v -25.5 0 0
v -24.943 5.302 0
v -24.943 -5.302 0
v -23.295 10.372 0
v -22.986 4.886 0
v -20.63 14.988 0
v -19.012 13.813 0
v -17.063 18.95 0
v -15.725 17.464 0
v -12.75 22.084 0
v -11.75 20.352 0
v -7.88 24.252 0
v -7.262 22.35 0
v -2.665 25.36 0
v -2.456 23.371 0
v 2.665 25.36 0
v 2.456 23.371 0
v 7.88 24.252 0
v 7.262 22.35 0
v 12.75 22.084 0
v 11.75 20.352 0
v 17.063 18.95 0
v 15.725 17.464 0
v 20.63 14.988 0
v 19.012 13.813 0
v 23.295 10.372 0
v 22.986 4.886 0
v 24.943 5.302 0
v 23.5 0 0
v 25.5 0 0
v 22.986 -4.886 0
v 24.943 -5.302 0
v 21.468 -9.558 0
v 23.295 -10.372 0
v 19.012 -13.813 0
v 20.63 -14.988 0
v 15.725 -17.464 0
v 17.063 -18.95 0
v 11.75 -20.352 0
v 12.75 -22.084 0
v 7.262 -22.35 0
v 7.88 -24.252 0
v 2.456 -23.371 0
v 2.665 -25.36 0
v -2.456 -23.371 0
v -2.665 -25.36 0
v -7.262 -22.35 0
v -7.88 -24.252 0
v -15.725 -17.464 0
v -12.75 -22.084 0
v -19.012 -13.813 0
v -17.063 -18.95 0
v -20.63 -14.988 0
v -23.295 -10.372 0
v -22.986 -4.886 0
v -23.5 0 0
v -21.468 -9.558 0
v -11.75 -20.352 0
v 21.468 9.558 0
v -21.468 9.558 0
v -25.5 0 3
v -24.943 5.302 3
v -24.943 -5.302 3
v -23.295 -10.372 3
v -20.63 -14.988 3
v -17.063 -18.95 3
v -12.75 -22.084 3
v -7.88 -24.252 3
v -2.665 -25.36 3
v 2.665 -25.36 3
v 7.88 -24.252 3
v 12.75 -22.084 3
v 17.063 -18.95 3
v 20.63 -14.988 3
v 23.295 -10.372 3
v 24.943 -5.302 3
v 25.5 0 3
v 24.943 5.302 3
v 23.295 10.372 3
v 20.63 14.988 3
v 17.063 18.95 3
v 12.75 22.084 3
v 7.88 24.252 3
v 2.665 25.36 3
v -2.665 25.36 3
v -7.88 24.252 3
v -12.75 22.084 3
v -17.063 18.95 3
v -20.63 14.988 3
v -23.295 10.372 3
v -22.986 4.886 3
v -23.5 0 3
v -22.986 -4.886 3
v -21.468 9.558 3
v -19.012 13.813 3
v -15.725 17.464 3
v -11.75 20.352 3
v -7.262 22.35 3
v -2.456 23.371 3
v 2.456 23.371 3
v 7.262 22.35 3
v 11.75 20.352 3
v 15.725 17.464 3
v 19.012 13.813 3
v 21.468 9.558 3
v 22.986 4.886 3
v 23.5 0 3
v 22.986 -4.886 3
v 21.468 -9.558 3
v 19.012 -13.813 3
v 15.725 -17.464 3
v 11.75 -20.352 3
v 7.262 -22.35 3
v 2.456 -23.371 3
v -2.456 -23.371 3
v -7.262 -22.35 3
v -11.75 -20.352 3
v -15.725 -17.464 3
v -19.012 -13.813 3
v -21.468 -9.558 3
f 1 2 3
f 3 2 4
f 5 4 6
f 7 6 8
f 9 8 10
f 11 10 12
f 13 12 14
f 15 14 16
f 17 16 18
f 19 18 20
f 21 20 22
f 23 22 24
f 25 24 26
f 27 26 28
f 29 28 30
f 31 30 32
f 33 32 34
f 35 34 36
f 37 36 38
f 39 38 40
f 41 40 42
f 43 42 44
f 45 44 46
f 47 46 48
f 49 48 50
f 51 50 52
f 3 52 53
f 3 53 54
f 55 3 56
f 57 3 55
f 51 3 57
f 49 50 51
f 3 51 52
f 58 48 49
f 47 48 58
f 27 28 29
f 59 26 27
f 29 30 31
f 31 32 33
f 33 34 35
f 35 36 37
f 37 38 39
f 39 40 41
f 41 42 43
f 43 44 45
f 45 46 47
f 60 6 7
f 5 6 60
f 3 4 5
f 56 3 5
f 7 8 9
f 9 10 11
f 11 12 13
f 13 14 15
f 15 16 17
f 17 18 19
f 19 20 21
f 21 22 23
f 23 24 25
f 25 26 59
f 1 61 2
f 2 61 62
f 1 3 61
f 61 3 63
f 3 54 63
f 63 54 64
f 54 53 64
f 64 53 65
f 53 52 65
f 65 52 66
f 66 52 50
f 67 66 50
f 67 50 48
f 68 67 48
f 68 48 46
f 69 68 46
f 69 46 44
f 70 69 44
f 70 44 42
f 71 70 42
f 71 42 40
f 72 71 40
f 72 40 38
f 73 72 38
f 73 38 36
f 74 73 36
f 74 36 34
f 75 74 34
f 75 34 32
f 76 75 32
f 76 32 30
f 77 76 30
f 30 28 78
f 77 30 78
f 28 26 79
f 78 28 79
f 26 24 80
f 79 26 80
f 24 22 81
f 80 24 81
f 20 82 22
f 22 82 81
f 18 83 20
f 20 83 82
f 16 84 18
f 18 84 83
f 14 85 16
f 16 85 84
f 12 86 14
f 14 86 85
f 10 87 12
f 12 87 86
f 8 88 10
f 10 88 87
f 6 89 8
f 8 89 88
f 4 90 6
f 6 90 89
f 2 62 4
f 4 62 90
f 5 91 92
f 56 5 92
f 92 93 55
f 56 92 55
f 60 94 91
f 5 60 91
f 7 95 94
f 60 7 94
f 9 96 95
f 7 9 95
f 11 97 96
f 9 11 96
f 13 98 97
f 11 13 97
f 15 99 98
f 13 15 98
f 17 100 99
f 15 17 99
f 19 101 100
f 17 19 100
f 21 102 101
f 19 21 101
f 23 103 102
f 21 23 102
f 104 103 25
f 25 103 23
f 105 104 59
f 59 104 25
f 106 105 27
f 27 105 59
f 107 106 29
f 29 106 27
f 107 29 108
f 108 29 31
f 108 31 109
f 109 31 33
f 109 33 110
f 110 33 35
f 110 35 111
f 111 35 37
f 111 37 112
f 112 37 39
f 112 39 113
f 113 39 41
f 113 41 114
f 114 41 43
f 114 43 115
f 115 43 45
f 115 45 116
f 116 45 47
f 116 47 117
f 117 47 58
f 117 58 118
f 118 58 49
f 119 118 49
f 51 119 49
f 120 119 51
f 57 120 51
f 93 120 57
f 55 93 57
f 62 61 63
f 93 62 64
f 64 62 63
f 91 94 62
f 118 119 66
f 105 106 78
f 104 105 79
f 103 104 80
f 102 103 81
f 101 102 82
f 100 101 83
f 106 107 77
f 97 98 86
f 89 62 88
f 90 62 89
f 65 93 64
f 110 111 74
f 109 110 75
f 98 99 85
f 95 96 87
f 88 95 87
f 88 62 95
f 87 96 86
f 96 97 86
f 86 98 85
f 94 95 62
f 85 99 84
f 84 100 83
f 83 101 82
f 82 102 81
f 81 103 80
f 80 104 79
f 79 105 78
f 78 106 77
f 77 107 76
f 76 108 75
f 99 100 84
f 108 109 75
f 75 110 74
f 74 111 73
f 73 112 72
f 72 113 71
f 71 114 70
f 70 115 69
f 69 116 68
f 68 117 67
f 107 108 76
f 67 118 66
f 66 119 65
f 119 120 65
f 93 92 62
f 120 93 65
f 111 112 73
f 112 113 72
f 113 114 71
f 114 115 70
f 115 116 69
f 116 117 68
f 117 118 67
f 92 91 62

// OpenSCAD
// file: configure.scad
/*
 * file: configure.scad
 * author: gregor binder
 * date: 10.11.2013
 * last change: 10.11.2013
 * license: CC BY-NC-SA 3.0
 */

innerdiameter=47;
height=25;
heighttestcircle=2;
thickness=5;
thicknesstestcircle=2;
mountinglength=40;
mountingwidth=7;
holedistance=10;
holediameter=3.5;
screwheaddiameter=7;
screwheadheigth=2;
rounding=5;
roundingleft=4;
// main file
/*
 * file: test_circle.scad
 * author: gregor binder
 * date: 10.11.2013
 * last change: 10.11.2013
 * license: CC BY-NC-SA 3.0
 */

include <configure.scad>;

difference() {
	cylinder(h=heighttestcircle+1,r=(innerdiameter/2)+thicknesstestcircle);
	translate([0,0,-0.5])
		cylinder(h=heighttestcircle+2,r=(innerdiameter/2));
}
